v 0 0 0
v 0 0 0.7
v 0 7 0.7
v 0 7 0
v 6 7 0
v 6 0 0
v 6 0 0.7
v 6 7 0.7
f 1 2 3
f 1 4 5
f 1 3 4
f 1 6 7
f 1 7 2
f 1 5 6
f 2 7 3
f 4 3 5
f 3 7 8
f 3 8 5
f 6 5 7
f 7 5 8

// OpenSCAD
/* Warning, this is a very basic generator with a lot of approximation 
input data : [WQFN, SMC, 6x7x0.7mm, 39, , A, C04-25649A]
generated by com.zoubworld.electronics.cad.model3d.Basic
Date : Sun Feb 15 10:50:49 CET 2026
*/

//body
color("black")
translate([0,0,0])
cube([6.0,7.0,0.7], center=false);
